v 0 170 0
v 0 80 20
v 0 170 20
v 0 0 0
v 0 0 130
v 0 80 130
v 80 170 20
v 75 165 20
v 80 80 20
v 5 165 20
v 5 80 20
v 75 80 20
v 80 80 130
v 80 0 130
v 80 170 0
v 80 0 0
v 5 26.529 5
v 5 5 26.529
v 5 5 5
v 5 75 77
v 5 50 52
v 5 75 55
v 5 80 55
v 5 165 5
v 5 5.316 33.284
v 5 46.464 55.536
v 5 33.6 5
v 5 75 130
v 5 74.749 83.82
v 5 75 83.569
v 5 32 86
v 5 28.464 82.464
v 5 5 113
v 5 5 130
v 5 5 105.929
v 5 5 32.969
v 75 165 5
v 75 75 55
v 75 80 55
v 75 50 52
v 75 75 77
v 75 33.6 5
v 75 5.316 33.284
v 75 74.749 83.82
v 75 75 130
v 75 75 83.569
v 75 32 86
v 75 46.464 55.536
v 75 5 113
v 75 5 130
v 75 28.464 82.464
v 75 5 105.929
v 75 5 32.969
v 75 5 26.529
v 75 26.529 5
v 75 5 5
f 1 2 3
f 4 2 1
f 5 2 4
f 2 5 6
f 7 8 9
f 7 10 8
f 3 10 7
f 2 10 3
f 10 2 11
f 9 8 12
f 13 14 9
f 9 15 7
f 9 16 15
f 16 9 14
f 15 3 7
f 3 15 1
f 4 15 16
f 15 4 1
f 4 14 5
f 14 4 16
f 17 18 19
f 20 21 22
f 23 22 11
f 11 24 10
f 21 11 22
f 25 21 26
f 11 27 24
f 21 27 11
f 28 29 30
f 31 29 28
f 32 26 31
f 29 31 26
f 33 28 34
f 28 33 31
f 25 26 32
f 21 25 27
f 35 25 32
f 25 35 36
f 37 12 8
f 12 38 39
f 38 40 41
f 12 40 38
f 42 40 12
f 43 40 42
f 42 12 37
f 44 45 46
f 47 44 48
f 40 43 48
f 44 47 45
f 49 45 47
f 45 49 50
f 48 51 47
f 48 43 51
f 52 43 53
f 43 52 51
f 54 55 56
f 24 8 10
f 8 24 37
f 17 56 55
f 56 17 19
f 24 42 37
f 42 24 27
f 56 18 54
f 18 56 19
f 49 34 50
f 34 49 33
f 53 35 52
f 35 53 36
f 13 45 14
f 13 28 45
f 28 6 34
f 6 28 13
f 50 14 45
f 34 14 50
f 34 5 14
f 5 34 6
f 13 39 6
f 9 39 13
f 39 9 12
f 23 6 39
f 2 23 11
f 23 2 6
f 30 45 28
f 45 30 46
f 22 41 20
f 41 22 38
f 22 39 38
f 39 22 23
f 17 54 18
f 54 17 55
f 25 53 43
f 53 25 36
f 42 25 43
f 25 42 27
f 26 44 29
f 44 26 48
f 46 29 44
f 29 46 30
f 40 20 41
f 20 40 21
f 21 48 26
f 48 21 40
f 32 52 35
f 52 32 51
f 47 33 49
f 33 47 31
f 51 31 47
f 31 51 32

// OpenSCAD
length = 170;
width = 80;
trayHeigth = 20;
wallthickness= 5;
towerheight = 130;
diceOutHeight = 50;

edgelength = 40;

basetray(length,width,trayHeigth);
tower();

module basetray(length,width,trayHeigth){
    
    difference(){
    //Base tray
    cube([width,length,trayHeigth]);
        
    //hollow tray
    translate([wallthickness,wallthickness,wallthickness])
    cube([width-wallthickness*2,length-wallthickness*2,trayHeigth]);
    }
}

module tower(){
    
    difference(){
    //TowerBase
    cube([width,width,towerheight]);
    //hollowTowerBase
    translate([wallthickness,wallthickness,wallthickness])
    cube([width-wallthickness*2,width-wallthickness*2,towerheight]);
    //DiceOut
    translate([wallthickness,width+wallthickness,wallthickness])
    cube([width-wallthickness*2,wallthickness*2,diceOutHeight]);
    //DiceOut
    translate([wallthickness,width-wallthickness*1.5,wallthickness])
    cube([width-wallthickness*2,wallthickness*2,diceOutHeight]);
    }
    
    //buttom edge
    translate([0,edgelength*1.09-wallthickness*2,wallthickness])
    rotate([135,0,0])
    cube([width,width-edgelength,wallthickness]);
    
    //2nd edge
    translate([0,width-edgelength*0.75,towerheight/2.5])
    rotate([45,0,0])
    cube([width,width-edgelength,wallthickness]);
    
    //1st edge
    translate([0,edgelength*0.55+wallthickness*2,towerheight-edgelength*1.1 ])
    rotate([135,0,0])
    cube([width,width-edgelength,wallthickness]);
      
}
